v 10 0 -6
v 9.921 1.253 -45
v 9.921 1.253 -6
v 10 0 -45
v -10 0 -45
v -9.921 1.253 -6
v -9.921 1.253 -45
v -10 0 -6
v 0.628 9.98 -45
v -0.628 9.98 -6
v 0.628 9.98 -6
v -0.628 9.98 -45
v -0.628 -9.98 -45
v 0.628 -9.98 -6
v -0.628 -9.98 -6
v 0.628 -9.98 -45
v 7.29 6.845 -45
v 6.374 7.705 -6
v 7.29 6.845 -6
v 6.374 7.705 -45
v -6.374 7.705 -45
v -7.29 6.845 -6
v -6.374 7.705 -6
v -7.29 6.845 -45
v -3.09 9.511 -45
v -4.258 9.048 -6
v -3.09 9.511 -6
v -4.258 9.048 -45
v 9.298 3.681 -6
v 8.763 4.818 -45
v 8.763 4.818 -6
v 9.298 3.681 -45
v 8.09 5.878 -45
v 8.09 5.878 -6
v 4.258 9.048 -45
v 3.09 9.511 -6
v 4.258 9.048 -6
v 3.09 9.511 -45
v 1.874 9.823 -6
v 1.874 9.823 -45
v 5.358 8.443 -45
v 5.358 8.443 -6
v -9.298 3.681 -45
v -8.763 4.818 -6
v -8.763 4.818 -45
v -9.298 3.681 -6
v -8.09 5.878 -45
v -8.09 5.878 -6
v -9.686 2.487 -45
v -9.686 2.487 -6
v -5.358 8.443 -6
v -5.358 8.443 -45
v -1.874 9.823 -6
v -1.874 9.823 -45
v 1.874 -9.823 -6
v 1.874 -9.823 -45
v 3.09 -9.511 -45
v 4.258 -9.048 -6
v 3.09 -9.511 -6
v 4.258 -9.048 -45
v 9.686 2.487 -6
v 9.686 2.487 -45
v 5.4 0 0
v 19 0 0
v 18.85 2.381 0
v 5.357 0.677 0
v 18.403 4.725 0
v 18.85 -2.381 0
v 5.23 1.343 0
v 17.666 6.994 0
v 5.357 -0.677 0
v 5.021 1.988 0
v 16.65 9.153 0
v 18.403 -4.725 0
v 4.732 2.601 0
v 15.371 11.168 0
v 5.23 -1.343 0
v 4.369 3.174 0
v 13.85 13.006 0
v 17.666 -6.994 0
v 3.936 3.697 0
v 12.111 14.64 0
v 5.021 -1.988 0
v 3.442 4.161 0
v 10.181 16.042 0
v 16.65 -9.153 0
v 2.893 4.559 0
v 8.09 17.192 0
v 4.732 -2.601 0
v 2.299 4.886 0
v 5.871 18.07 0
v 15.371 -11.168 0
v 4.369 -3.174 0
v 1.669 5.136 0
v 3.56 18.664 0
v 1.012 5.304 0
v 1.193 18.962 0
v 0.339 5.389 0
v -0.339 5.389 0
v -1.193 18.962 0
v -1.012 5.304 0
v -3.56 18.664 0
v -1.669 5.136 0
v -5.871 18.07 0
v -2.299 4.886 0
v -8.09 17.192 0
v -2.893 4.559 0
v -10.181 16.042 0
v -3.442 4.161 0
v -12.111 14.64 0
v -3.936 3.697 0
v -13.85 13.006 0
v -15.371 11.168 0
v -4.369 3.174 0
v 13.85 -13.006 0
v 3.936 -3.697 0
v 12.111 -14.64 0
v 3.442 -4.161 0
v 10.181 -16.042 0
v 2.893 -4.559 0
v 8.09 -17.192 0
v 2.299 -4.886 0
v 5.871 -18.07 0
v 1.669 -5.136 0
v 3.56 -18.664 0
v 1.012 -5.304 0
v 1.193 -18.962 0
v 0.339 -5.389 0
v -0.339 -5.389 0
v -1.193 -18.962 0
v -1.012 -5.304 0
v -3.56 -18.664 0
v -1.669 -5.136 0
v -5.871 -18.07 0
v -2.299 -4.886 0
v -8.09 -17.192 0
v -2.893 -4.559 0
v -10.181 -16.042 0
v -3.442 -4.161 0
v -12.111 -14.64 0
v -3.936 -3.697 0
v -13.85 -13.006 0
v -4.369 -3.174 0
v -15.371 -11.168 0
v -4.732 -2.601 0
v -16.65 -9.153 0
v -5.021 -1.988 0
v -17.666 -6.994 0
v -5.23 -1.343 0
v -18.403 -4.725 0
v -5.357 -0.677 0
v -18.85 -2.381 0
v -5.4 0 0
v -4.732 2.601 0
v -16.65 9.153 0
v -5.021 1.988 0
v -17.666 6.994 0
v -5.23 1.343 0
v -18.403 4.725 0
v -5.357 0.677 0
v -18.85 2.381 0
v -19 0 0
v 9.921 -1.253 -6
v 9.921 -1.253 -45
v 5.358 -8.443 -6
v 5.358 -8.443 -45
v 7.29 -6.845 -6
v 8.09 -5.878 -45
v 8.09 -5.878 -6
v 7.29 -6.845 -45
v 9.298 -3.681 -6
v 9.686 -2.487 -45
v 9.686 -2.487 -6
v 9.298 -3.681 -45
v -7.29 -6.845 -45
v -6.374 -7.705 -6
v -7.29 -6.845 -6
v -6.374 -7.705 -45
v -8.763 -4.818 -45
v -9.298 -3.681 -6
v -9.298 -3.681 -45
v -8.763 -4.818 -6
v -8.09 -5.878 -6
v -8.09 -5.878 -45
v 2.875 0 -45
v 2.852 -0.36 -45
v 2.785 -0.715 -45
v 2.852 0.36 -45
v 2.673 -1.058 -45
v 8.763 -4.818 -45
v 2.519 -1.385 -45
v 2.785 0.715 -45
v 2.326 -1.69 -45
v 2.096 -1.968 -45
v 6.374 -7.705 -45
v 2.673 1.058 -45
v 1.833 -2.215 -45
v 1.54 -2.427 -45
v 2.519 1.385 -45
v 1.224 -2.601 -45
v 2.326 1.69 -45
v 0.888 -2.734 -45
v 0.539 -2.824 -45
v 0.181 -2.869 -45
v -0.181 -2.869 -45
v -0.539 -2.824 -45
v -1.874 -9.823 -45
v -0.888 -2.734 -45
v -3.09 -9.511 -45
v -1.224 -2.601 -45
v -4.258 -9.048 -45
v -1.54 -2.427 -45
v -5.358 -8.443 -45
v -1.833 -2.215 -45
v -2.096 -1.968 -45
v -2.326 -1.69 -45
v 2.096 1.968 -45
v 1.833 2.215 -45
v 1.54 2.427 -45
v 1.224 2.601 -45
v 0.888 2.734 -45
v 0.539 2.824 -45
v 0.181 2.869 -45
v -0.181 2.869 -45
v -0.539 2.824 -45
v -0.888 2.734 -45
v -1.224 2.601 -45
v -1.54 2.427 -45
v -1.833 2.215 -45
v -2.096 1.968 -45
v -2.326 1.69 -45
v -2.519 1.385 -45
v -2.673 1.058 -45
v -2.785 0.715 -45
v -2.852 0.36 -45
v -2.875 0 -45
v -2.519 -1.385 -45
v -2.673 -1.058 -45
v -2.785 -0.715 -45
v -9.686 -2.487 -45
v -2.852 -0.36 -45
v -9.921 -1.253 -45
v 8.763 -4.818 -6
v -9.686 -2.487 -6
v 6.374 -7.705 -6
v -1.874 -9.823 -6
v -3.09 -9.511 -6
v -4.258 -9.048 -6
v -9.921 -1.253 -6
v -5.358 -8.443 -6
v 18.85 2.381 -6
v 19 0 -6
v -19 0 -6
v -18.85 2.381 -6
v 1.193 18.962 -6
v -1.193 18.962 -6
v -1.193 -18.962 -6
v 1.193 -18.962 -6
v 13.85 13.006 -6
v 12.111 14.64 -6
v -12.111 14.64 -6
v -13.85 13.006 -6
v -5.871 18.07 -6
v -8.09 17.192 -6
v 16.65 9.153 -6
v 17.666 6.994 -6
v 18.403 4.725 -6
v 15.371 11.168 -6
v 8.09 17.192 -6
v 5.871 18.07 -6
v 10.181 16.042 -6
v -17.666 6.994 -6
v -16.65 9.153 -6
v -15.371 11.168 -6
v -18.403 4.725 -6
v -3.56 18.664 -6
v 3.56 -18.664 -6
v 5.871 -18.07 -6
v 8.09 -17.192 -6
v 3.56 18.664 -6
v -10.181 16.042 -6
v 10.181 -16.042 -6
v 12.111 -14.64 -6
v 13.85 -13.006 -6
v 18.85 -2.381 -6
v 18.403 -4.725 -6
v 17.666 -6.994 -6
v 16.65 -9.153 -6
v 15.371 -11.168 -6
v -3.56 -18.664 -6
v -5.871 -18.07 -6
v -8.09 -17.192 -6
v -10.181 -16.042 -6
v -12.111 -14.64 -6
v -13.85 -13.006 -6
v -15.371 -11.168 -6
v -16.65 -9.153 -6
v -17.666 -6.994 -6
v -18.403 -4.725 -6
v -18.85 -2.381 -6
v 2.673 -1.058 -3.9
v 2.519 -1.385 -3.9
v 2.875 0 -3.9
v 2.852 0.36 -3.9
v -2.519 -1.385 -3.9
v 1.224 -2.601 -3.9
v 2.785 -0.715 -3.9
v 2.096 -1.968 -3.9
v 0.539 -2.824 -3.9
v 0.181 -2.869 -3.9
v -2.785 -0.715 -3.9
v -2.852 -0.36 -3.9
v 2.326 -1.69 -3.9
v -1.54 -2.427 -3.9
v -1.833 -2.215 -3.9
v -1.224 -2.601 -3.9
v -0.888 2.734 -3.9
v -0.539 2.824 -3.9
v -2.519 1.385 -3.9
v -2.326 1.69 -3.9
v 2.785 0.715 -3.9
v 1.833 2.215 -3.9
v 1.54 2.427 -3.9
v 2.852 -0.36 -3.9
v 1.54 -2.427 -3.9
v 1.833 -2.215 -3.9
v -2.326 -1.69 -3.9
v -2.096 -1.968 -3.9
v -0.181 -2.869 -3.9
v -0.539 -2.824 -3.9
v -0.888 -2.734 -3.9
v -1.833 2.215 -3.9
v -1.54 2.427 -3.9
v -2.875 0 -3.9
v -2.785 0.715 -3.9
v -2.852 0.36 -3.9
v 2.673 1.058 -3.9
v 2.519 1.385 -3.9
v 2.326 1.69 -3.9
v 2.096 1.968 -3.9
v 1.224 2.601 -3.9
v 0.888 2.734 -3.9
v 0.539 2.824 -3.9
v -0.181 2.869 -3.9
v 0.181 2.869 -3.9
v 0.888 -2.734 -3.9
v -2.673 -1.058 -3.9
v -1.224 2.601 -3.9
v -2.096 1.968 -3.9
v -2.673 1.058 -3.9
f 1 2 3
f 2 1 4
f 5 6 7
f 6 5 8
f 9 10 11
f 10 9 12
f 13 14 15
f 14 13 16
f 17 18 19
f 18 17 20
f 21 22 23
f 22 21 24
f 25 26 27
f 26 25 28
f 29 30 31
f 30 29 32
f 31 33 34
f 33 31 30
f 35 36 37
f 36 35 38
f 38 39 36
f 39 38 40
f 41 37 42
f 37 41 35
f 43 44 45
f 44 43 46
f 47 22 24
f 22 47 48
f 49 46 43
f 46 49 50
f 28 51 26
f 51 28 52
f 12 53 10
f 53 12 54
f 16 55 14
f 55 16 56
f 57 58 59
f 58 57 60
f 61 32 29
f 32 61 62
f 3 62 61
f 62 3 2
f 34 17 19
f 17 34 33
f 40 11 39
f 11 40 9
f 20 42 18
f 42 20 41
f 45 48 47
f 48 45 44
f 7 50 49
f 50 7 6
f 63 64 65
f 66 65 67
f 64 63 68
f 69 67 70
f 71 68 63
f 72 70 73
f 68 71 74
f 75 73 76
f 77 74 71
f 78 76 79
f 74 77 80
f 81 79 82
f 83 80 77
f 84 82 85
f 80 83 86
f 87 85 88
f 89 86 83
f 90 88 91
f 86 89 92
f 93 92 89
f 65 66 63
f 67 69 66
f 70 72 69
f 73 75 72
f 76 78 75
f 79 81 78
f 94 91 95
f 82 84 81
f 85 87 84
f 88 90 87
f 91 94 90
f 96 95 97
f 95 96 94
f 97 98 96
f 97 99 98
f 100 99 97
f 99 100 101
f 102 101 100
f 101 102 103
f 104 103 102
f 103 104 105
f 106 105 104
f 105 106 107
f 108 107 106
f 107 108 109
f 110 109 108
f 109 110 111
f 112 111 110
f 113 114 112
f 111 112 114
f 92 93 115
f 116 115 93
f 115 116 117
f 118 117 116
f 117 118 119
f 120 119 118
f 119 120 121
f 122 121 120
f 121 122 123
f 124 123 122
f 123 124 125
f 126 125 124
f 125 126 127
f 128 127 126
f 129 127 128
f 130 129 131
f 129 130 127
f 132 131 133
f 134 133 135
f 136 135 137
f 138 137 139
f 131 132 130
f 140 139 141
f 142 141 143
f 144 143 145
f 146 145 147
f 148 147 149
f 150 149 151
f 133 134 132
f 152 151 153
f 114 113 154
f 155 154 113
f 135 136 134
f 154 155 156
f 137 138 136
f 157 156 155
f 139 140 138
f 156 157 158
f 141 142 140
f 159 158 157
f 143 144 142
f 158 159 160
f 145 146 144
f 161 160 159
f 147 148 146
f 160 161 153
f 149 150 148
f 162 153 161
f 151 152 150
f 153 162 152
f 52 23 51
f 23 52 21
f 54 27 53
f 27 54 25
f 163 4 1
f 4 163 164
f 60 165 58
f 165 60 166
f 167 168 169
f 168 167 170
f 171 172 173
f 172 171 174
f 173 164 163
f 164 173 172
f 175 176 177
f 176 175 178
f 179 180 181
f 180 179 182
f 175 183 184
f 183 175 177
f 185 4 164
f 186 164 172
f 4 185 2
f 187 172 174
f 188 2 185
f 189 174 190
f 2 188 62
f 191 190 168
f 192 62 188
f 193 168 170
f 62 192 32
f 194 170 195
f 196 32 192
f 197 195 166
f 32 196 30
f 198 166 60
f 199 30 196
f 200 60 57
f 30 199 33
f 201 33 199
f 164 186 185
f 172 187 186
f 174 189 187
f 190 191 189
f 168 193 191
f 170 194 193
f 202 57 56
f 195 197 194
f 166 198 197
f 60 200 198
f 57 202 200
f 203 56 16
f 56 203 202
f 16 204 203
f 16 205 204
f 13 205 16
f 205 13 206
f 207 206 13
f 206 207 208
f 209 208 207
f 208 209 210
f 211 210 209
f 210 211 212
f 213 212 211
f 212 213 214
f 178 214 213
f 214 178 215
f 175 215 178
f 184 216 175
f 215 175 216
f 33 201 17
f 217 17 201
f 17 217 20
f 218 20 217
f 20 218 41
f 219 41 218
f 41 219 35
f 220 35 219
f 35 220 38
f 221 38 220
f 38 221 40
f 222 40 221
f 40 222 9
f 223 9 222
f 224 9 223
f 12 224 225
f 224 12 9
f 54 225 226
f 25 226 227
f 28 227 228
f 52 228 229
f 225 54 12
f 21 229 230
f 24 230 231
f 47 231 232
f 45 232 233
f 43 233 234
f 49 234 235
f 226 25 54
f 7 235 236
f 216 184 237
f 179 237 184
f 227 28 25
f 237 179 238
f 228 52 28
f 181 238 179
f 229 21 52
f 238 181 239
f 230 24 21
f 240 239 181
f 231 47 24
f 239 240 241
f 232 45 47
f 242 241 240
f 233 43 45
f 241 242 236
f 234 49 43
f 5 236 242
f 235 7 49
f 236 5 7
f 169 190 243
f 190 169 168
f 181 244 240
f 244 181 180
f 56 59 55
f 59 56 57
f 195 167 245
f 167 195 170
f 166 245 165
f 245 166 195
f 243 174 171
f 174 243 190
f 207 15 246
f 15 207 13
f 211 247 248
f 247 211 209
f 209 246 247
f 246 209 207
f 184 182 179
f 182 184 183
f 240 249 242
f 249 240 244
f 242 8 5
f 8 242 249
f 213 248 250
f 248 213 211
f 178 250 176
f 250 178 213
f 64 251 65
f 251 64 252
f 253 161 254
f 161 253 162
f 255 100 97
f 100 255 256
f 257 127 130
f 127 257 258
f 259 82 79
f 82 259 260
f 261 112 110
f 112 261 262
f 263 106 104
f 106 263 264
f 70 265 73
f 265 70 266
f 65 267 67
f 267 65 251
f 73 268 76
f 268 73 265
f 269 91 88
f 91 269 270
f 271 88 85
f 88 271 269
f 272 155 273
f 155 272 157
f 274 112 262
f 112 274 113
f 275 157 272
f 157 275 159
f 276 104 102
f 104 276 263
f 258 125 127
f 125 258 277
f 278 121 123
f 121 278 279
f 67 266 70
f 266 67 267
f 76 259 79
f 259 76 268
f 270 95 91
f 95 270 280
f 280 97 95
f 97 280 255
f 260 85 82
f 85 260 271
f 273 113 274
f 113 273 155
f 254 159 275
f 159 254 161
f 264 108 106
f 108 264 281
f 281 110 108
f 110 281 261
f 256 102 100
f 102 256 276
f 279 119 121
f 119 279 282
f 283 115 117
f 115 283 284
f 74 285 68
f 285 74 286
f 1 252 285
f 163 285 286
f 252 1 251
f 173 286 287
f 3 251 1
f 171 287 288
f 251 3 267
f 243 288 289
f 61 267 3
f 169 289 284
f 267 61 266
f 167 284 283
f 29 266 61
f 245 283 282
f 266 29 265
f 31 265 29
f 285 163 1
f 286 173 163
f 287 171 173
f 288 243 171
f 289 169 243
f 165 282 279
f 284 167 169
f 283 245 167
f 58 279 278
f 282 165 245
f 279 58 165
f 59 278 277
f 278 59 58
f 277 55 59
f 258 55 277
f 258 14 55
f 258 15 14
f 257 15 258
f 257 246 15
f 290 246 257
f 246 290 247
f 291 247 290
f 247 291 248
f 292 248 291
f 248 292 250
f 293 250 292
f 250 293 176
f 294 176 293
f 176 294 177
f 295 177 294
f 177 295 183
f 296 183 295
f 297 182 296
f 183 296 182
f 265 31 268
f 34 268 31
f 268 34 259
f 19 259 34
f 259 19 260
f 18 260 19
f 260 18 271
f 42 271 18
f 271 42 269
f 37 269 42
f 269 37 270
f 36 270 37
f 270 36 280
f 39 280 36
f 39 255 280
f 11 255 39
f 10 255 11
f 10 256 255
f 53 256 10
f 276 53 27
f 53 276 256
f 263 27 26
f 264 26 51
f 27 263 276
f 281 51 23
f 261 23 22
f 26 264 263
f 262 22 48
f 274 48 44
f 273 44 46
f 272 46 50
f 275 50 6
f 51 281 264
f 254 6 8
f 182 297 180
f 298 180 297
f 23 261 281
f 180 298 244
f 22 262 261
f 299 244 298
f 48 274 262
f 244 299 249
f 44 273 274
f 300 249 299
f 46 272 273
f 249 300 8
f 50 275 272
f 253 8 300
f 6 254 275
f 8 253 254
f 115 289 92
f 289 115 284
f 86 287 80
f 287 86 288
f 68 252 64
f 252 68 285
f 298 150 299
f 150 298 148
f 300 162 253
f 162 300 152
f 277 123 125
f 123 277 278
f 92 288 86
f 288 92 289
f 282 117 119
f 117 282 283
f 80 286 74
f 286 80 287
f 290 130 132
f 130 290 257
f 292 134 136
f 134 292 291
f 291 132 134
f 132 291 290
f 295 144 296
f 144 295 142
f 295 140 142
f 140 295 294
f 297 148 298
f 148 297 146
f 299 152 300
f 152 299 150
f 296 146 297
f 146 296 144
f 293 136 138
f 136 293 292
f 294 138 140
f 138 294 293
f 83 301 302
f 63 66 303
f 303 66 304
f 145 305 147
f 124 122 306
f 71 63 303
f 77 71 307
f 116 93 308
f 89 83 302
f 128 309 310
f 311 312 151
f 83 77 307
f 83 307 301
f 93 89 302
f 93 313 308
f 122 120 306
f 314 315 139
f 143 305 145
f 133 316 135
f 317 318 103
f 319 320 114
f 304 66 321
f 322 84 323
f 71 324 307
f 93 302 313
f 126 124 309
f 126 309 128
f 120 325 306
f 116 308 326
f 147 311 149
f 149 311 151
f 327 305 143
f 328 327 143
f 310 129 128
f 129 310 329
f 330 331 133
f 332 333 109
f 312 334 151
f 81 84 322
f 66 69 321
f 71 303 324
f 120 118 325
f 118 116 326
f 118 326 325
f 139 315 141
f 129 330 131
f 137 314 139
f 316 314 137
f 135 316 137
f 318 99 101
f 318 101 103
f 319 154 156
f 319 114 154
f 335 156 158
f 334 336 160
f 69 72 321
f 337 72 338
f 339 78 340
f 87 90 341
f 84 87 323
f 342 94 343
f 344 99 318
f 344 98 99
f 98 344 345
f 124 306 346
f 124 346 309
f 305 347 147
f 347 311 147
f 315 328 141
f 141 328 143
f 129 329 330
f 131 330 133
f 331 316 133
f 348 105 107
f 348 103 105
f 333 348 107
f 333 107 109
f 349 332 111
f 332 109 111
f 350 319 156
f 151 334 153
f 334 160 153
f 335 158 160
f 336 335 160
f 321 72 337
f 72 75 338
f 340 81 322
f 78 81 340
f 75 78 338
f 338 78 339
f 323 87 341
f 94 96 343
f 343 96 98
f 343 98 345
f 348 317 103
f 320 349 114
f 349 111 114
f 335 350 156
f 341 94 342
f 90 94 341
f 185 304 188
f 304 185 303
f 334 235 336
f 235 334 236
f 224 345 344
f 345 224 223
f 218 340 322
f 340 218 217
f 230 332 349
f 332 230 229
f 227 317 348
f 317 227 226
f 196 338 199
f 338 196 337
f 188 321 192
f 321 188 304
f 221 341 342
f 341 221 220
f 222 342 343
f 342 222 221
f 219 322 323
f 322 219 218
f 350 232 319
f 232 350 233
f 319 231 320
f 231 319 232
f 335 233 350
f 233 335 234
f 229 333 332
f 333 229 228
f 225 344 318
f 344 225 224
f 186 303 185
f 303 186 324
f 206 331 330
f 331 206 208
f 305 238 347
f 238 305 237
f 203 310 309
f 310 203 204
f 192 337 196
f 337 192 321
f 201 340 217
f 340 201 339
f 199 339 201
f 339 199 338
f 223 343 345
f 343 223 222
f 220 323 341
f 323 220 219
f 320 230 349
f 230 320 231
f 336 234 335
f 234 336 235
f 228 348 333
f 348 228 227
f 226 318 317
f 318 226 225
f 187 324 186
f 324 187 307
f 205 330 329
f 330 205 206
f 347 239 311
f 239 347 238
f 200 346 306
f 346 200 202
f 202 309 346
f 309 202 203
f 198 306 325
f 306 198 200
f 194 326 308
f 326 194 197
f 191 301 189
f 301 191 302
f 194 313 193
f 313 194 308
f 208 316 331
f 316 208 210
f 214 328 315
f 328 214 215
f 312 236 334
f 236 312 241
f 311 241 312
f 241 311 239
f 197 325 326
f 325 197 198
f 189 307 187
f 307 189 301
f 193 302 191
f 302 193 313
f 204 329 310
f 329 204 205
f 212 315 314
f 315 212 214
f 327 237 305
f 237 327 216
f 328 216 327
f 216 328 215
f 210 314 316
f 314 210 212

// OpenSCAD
$fn = 50;


difference() {
	union() {
		translate(v = [0, 0, -45.0000000000]) {
			cylinder(h = 45, r = 10.0000000000);
		}
		translate(v = [0, 0, -6.0000000000]) {
			cylinder(h = 6, r = 19.0000000000);
		}
	}
	union() {
		translate(v = [0, 0, 0]) {
			rotate(a = [0, 0, 0]) {
				difference() {
					union() {
						#translate(v = [0, 0, -45.0000000000]) {
							cylinder(h = 45, r = 2.6000000000);
						}
						#translate(v = [0, 0, -3.9000000000]) {
							cylinder(h = 3.9000000000, r1 = 2.8750000000, r2 = 5.4000000000);
						}
						#translate(v = [0, 0, -45.0000000000]) {
							cylinder(h = 45, r = 2.8750000000);
						}
						#translate(v = [0, 0, -45.0000000000]) {
							cylinder(h = 45, r = 2.6000000000);
						}
					}
					union();
				}
			}
		}
	}
}
